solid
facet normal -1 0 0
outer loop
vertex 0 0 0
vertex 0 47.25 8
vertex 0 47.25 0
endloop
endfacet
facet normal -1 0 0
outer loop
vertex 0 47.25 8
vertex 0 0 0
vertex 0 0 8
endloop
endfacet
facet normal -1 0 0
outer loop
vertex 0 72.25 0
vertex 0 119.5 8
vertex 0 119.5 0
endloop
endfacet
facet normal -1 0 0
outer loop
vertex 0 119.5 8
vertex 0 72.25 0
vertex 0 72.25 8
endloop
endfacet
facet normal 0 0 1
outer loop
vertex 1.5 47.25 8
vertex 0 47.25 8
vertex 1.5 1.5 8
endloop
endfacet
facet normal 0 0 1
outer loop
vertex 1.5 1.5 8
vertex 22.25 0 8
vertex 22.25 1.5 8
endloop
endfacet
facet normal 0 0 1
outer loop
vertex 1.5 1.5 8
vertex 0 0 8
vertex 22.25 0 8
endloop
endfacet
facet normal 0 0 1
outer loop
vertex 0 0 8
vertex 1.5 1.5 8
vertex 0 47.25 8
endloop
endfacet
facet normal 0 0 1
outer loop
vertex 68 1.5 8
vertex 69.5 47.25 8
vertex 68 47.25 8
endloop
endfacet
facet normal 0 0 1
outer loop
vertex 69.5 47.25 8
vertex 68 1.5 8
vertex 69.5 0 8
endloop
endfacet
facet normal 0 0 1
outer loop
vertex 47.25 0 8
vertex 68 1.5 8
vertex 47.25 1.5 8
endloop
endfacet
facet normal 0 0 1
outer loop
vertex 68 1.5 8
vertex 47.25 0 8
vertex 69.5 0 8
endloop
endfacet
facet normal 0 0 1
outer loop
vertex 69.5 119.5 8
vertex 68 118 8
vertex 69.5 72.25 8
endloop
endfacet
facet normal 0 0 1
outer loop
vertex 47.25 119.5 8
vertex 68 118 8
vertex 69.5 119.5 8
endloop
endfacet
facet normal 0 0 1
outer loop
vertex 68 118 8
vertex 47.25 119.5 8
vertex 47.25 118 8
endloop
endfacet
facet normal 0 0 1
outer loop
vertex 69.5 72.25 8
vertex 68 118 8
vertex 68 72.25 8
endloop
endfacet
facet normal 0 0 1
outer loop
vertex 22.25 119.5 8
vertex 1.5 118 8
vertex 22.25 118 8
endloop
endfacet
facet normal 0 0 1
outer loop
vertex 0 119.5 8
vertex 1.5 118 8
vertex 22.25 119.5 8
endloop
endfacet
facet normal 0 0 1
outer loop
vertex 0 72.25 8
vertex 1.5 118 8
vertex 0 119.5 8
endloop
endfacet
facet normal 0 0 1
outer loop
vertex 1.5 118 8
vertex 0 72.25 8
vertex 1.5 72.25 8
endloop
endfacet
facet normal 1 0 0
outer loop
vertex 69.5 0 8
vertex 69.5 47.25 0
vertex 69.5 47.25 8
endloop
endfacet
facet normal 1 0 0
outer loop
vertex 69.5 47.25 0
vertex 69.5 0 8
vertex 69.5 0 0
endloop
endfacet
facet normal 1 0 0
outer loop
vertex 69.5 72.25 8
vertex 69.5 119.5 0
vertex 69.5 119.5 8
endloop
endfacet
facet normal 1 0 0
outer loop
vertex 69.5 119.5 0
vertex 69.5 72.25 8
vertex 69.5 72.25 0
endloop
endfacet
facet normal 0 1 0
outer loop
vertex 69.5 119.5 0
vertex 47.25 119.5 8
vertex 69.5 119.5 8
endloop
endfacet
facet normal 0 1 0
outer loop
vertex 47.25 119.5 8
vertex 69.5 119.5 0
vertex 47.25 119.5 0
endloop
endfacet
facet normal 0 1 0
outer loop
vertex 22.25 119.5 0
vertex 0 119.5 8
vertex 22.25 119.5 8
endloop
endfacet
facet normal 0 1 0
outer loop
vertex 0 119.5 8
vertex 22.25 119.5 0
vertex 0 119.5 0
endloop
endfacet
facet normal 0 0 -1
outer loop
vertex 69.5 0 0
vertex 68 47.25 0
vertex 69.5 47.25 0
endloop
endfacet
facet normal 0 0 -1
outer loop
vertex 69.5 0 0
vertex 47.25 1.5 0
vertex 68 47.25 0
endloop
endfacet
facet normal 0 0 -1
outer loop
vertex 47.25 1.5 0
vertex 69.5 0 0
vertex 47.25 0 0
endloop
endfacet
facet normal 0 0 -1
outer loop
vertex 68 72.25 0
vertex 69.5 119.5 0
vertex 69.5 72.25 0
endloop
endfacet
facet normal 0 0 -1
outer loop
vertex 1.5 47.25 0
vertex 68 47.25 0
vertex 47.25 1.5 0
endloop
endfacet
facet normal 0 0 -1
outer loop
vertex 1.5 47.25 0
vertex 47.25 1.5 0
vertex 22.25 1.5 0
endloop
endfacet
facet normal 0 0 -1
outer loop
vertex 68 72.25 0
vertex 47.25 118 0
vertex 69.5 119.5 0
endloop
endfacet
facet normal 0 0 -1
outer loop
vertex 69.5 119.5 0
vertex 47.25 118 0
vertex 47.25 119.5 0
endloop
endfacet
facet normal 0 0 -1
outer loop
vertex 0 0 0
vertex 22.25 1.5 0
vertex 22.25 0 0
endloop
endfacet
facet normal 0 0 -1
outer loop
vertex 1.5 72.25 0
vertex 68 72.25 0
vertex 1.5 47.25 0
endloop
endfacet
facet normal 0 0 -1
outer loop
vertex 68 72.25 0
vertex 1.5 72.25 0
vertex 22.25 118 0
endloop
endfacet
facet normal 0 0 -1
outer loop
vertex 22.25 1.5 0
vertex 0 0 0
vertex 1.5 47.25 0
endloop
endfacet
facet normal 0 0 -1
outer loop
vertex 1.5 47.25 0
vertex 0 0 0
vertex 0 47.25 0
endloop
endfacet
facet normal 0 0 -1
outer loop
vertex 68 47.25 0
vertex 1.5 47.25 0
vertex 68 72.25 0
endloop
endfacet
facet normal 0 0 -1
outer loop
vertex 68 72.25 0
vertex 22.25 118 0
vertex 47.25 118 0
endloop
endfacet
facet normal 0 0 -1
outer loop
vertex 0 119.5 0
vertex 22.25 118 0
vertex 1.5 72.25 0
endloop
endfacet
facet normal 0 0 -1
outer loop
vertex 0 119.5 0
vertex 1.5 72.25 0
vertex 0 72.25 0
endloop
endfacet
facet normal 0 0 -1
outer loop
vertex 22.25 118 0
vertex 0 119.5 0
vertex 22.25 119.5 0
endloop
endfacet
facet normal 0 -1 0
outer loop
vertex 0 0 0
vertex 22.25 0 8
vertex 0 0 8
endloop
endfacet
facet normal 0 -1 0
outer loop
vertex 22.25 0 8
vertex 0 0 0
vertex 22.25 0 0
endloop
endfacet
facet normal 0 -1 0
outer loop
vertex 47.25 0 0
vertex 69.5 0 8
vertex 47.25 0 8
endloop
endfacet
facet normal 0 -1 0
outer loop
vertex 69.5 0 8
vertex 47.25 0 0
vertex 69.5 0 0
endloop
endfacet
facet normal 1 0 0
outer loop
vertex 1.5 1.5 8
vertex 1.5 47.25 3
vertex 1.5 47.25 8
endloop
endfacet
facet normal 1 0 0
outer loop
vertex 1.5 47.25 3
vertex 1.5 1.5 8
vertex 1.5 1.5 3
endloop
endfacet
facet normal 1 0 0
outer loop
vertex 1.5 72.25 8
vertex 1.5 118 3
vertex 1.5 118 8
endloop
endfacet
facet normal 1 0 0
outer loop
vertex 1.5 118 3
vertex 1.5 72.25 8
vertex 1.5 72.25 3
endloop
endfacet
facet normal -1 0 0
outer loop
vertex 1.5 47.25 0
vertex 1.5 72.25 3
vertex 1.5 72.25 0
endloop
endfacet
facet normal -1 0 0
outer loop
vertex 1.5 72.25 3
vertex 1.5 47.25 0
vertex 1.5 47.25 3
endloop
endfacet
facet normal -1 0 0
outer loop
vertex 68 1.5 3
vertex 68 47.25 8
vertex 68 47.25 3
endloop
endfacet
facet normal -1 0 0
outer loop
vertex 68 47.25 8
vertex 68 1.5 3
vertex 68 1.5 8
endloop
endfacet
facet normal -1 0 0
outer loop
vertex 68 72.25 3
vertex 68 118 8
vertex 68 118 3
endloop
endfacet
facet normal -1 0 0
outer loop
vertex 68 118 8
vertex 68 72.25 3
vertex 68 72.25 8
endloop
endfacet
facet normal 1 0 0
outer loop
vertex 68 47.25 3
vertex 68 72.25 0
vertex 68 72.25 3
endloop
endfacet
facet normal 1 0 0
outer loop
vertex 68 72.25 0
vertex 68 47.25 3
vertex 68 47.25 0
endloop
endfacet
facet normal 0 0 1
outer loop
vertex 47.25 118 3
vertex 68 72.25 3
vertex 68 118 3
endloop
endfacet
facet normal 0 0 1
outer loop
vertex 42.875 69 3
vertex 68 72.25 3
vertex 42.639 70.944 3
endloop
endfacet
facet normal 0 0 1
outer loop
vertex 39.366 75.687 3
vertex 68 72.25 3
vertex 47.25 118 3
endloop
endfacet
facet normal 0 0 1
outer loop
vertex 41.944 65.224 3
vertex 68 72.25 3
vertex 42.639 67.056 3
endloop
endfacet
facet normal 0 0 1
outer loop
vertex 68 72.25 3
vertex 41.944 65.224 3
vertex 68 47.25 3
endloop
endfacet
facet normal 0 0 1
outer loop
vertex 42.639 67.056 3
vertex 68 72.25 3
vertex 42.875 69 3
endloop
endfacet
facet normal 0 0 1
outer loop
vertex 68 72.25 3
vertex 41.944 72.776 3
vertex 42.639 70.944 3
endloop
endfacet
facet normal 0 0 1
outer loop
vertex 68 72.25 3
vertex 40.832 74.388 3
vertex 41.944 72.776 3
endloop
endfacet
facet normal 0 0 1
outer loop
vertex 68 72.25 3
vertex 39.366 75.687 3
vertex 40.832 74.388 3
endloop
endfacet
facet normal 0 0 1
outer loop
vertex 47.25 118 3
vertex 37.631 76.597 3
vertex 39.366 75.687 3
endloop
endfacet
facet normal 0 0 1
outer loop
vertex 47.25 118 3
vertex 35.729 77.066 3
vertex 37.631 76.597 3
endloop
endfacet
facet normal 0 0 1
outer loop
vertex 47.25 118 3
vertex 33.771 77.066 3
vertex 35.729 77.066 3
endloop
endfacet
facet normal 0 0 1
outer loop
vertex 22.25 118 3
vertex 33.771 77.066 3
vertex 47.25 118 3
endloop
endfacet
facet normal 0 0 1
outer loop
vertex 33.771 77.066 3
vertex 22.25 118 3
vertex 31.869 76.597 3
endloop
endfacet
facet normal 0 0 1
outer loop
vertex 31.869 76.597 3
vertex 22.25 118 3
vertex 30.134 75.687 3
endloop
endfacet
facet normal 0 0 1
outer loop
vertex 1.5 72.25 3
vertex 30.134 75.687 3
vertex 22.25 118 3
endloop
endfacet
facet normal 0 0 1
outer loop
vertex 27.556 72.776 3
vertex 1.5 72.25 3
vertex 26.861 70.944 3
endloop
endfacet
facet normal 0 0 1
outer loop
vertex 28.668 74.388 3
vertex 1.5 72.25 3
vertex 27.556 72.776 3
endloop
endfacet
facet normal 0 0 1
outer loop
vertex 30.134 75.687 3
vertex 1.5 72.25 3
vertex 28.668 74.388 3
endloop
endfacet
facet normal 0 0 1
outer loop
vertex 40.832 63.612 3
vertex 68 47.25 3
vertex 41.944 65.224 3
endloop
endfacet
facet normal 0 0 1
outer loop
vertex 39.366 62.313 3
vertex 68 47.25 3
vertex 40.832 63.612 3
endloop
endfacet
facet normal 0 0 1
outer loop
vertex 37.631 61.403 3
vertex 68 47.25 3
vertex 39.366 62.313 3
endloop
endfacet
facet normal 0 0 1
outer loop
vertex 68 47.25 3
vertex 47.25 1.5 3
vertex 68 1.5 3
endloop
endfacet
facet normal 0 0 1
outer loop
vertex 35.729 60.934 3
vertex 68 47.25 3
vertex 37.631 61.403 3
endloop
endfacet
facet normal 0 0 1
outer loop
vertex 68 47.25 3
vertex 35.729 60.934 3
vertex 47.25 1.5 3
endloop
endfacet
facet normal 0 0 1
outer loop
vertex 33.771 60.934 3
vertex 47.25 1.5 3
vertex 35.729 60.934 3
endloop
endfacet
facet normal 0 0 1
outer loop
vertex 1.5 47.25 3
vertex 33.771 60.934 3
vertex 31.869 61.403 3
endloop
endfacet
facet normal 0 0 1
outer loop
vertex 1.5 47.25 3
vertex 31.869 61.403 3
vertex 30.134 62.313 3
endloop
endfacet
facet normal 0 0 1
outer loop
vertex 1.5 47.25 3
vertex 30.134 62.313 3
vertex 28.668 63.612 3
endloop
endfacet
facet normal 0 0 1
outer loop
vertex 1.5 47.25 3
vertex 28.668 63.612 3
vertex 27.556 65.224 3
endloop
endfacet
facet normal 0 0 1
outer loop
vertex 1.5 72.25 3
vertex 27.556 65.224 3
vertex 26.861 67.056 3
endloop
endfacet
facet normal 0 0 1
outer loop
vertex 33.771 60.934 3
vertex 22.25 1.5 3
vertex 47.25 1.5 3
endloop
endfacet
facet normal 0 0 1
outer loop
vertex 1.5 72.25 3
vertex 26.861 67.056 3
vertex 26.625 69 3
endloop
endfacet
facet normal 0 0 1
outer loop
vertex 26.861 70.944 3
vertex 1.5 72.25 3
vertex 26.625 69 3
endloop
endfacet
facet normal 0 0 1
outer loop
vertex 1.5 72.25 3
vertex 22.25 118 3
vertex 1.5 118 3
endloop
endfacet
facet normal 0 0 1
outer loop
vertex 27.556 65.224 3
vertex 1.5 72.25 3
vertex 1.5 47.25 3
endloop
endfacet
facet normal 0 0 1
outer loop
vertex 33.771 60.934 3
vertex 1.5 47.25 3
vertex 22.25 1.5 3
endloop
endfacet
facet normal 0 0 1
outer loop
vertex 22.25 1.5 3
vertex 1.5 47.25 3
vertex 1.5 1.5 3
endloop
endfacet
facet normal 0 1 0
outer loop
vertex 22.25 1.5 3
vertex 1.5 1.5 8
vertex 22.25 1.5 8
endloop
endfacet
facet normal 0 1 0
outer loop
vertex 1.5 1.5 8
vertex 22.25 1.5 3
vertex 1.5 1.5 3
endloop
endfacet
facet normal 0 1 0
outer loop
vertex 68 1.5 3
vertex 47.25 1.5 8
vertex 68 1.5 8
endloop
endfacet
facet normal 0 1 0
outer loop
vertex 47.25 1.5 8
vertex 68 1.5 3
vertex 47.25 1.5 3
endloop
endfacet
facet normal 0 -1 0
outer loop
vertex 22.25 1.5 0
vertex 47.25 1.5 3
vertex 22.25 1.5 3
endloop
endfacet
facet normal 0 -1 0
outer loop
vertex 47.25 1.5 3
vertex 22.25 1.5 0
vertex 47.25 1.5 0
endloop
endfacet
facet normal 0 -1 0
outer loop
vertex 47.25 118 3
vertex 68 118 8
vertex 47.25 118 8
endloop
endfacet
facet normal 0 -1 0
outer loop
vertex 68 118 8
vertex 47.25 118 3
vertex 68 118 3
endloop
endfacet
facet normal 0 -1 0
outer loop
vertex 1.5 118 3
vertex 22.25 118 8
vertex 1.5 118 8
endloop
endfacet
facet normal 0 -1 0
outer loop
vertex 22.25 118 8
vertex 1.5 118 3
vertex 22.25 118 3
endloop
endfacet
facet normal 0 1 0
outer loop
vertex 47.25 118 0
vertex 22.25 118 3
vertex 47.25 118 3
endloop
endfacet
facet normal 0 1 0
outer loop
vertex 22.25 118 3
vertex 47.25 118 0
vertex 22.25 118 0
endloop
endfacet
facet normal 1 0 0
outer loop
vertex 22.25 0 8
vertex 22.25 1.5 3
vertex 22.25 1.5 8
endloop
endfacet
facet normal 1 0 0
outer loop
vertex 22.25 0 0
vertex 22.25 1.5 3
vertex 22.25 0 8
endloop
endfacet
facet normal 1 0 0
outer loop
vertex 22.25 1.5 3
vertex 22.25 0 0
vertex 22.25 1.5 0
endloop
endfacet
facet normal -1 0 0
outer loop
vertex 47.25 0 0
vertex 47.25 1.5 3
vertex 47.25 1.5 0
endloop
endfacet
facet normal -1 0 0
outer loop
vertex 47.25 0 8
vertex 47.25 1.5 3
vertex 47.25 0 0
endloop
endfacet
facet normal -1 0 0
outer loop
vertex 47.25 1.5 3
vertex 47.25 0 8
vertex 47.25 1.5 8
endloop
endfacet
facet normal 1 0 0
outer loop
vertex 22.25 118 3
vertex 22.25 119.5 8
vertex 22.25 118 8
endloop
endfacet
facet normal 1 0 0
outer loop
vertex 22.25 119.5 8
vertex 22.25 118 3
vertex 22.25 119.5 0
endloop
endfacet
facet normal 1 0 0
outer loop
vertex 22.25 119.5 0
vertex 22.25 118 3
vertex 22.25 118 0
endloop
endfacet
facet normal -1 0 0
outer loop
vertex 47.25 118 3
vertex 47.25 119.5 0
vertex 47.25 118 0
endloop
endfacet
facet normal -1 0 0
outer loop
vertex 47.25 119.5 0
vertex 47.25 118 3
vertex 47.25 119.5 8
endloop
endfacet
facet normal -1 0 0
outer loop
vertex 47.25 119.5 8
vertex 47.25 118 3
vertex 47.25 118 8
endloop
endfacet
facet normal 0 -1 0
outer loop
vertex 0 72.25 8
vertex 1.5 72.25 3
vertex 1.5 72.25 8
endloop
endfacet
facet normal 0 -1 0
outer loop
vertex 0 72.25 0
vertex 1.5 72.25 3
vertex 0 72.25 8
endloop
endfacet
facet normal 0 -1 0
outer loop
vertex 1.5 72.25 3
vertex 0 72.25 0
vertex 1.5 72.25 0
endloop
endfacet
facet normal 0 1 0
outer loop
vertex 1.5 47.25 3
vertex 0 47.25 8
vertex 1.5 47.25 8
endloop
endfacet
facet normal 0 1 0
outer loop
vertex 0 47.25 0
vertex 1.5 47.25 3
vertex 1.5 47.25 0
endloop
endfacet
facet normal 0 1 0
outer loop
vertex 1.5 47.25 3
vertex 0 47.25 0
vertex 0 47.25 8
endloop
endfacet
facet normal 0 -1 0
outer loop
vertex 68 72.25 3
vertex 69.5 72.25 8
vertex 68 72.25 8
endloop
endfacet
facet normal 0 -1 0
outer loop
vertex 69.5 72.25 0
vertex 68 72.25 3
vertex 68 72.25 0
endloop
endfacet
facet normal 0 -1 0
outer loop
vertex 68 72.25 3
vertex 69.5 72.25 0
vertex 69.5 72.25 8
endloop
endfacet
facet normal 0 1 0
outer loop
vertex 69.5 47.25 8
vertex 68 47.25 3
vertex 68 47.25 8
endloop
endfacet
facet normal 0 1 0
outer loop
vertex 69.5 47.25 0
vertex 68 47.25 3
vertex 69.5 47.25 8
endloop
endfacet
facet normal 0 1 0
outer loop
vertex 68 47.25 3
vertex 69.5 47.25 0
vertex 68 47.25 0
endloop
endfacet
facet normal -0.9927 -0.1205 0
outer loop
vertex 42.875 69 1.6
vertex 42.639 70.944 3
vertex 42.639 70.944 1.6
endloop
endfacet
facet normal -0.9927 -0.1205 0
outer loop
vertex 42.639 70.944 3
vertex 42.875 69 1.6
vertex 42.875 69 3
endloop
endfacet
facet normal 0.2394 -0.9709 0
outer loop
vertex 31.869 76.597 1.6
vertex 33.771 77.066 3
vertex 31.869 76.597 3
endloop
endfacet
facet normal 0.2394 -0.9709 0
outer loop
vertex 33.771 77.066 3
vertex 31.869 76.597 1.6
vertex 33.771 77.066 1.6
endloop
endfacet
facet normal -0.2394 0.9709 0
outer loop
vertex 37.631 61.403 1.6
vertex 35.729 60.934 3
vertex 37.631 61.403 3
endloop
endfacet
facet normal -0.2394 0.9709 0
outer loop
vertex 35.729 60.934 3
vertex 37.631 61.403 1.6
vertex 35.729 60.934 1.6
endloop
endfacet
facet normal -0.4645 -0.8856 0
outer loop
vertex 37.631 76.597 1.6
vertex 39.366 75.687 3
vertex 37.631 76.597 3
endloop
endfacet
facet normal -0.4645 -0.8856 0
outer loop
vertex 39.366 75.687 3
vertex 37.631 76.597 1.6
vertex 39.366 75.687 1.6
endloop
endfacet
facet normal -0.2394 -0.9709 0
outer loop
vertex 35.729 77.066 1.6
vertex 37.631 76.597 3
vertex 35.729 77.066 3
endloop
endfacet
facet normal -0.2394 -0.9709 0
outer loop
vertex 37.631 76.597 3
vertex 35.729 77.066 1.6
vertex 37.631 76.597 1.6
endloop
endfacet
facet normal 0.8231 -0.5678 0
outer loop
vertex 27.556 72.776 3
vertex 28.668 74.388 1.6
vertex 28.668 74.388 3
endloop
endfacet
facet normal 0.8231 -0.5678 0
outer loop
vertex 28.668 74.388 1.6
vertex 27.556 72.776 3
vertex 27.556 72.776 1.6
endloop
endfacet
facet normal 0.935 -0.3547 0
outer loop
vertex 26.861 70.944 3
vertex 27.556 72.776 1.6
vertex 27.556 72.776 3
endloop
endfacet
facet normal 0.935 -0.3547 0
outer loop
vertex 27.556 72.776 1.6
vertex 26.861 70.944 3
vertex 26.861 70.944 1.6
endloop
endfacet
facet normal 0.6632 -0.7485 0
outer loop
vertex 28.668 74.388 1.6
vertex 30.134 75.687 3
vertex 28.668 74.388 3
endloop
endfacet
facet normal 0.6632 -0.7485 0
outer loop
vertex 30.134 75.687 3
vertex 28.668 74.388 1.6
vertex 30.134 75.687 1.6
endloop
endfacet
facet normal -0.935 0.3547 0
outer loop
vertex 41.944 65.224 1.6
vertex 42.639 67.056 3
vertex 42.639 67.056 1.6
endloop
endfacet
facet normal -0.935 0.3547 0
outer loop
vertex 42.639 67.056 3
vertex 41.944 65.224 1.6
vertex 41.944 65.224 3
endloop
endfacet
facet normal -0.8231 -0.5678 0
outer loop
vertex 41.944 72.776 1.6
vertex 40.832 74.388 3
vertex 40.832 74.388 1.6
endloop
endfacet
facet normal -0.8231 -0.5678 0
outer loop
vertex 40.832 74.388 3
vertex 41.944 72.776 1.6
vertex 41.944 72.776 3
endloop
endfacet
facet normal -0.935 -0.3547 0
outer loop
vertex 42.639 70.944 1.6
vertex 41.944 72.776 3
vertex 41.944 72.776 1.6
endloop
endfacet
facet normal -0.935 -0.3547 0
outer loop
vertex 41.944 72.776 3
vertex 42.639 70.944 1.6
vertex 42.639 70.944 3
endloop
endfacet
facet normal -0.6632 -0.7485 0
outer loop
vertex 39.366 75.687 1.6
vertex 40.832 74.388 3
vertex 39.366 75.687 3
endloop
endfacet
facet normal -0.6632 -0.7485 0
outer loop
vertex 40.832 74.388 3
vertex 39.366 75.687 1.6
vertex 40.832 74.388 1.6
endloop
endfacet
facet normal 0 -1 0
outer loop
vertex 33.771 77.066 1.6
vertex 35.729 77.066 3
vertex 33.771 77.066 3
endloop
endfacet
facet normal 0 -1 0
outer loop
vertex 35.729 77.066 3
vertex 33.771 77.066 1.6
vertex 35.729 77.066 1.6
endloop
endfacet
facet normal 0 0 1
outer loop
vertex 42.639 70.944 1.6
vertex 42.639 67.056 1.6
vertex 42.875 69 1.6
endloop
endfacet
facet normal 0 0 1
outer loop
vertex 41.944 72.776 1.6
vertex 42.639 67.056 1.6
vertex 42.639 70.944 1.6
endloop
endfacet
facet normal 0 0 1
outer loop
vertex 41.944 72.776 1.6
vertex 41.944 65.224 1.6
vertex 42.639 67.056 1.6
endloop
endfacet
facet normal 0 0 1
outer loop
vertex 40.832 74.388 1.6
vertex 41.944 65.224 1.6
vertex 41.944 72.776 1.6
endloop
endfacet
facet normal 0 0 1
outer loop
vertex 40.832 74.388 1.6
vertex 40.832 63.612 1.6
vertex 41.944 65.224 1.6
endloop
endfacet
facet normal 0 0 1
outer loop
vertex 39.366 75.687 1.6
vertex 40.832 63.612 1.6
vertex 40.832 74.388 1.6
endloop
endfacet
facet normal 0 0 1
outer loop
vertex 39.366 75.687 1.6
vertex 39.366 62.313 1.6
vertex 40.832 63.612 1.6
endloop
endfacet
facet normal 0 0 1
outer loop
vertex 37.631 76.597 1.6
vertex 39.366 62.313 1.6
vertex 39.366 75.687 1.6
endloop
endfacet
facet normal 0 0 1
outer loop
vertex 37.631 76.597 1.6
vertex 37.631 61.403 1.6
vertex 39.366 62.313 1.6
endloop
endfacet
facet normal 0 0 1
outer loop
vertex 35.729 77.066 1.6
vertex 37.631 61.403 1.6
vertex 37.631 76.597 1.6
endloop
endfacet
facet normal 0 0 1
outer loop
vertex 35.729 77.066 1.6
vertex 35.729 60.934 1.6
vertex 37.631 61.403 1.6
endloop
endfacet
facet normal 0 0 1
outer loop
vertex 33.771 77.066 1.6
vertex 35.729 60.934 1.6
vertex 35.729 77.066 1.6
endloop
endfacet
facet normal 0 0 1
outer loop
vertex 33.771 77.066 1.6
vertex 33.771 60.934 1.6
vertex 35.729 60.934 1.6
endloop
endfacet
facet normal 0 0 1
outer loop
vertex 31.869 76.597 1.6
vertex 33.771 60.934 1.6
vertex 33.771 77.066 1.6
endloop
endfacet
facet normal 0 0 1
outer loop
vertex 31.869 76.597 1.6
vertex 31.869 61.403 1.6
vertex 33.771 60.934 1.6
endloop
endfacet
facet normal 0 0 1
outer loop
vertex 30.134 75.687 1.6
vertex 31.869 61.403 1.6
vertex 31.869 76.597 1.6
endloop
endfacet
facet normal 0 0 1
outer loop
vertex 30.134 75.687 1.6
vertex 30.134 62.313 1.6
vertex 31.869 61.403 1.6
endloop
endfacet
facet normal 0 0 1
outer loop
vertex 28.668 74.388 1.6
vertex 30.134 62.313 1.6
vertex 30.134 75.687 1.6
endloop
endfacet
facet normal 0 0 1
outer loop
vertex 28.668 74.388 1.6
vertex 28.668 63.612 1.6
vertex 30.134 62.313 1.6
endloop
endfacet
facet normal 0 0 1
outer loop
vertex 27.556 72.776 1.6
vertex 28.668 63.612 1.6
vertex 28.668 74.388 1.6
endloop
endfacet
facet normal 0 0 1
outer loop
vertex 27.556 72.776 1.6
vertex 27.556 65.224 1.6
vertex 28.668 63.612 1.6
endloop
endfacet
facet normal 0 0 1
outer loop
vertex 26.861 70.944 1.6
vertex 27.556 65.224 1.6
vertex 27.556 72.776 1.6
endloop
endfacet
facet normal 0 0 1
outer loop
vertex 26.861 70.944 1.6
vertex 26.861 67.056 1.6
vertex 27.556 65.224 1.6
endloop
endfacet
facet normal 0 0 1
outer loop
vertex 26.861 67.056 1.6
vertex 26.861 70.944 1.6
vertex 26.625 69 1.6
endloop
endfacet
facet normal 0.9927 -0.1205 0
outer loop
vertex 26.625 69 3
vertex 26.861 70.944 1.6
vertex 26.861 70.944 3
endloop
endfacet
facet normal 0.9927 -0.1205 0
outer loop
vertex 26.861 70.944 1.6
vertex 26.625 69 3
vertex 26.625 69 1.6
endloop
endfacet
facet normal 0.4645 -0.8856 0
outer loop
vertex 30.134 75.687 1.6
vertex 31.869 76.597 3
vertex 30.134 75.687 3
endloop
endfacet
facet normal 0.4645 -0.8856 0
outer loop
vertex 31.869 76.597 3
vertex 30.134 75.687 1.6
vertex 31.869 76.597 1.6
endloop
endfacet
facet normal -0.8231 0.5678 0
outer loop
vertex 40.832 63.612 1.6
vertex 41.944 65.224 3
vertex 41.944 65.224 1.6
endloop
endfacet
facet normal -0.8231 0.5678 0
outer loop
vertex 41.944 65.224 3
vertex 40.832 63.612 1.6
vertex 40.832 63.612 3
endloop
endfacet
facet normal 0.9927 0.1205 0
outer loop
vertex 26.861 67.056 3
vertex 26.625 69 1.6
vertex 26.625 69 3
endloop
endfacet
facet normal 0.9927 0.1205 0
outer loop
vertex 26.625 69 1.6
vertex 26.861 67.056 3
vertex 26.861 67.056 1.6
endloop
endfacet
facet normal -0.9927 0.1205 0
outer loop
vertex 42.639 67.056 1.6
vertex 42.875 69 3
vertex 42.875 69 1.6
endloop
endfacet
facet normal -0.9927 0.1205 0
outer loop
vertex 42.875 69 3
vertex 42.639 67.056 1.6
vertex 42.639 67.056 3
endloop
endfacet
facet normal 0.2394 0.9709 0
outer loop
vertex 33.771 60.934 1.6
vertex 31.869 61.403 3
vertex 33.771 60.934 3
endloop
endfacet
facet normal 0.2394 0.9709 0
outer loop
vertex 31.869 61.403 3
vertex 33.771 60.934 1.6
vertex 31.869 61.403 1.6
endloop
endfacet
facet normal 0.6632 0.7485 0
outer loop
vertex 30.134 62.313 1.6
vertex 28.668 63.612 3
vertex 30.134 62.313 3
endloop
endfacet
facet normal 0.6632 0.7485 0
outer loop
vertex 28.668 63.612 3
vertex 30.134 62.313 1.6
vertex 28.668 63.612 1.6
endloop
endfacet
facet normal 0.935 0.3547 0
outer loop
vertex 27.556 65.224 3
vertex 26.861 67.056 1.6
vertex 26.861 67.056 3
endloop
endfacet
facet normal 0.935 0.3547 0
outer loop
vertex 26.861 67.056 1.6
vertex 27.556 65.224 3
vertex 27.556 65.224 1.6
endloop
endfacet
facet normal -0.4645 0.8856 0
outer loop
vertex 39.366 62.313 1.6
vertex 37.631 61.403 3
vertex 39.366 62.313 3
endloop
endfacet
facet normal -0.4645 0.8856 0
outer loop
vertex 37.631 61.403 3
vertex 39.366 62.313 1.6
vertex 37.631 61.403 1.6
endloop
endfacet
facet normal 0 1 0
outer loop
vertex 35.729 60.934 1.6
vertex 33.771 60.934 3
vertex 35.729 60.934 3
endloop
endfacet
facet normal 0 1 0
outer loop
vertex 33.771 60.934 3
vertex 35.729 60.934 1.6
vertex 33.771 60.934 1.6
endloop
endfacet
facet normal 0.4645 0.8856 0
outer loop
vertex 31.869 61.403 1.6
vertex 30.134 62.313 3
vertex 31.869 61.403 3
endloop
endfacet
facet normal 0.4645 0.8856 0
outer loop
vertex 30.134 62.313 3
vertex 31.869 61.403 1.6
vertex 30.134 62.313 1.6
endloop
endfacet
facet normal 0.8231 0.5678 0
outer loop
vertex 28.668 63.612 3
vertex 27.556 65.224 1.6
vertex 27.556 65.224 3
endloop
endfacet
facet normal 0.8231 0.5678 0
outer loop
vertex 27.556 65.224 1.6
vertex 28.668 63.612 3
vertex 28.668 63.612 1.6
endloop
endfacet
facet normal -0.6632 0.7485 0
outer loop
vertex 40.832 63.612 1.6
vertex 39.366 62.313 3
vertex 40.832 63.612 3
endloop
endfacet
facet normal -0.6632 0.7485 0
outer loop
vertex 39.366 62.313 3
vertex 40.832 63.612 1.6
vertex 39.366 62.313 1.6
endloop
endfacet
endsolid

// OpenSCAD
length = 65;
width = 115;

height = 3;
rimHeight = 5;
rimThickness = 1.5;
notchLength = 25;
//Based on washer size:
washerDiameter = 16.25;
washerHeight = 1.4;
rimPadding = 1.5;
totalHeight = height + rimHeight;

totalLength = length + rimThickness * 2 + rimPadding;
totalWidth = width + rimThickness * 2 + rimPadding;

magnetOffset = 52.5;
pillarSideLength = 18;

magnetBaseInnerDiameter = 15.4;
spaceBetweenCircles = 2;
wallThickness = spaceBetweenCircles;
pillarSideOffset = .5;

difference() {
    cube([totalLength, totalWidth, height + rimHeight]);
    translate([rimThickness, rimThickness, height])
        cube([length + rimPadding, width + rimPadding, rimHeight]);
    
    translate([totalLength/2 - notchLength/2, 0, 0])
        cube([notchLength, rimThickness, totalHeight]);
    translate([totalLength/2 - notchLength/2, totalWidth-rimThickness, 0])
        cube([notchLength, rimThickness, totalHeight]);


    translate([0, totalWidth/2 - notchLength/2, 0])
        cube([rimThickness, notchLength, totalHeight]);
    translate([totalLength-rimThickness, totalWidth/2 - notchLength/2, 0])
        cube([rimThickness, notchLength, totalHeight]);
    
    translate([totalLength/2, magnetOffset + wallThickness * 2 + magnetBaseInnerDiameter/2 + (pillarSideLength -magnetBaseInnerDiameter )/2 + rimThickness + rimPadding + pillarSideOffset, height - washerHeight])
        cylinder(washerHeight, d=washerDiameter);
}
